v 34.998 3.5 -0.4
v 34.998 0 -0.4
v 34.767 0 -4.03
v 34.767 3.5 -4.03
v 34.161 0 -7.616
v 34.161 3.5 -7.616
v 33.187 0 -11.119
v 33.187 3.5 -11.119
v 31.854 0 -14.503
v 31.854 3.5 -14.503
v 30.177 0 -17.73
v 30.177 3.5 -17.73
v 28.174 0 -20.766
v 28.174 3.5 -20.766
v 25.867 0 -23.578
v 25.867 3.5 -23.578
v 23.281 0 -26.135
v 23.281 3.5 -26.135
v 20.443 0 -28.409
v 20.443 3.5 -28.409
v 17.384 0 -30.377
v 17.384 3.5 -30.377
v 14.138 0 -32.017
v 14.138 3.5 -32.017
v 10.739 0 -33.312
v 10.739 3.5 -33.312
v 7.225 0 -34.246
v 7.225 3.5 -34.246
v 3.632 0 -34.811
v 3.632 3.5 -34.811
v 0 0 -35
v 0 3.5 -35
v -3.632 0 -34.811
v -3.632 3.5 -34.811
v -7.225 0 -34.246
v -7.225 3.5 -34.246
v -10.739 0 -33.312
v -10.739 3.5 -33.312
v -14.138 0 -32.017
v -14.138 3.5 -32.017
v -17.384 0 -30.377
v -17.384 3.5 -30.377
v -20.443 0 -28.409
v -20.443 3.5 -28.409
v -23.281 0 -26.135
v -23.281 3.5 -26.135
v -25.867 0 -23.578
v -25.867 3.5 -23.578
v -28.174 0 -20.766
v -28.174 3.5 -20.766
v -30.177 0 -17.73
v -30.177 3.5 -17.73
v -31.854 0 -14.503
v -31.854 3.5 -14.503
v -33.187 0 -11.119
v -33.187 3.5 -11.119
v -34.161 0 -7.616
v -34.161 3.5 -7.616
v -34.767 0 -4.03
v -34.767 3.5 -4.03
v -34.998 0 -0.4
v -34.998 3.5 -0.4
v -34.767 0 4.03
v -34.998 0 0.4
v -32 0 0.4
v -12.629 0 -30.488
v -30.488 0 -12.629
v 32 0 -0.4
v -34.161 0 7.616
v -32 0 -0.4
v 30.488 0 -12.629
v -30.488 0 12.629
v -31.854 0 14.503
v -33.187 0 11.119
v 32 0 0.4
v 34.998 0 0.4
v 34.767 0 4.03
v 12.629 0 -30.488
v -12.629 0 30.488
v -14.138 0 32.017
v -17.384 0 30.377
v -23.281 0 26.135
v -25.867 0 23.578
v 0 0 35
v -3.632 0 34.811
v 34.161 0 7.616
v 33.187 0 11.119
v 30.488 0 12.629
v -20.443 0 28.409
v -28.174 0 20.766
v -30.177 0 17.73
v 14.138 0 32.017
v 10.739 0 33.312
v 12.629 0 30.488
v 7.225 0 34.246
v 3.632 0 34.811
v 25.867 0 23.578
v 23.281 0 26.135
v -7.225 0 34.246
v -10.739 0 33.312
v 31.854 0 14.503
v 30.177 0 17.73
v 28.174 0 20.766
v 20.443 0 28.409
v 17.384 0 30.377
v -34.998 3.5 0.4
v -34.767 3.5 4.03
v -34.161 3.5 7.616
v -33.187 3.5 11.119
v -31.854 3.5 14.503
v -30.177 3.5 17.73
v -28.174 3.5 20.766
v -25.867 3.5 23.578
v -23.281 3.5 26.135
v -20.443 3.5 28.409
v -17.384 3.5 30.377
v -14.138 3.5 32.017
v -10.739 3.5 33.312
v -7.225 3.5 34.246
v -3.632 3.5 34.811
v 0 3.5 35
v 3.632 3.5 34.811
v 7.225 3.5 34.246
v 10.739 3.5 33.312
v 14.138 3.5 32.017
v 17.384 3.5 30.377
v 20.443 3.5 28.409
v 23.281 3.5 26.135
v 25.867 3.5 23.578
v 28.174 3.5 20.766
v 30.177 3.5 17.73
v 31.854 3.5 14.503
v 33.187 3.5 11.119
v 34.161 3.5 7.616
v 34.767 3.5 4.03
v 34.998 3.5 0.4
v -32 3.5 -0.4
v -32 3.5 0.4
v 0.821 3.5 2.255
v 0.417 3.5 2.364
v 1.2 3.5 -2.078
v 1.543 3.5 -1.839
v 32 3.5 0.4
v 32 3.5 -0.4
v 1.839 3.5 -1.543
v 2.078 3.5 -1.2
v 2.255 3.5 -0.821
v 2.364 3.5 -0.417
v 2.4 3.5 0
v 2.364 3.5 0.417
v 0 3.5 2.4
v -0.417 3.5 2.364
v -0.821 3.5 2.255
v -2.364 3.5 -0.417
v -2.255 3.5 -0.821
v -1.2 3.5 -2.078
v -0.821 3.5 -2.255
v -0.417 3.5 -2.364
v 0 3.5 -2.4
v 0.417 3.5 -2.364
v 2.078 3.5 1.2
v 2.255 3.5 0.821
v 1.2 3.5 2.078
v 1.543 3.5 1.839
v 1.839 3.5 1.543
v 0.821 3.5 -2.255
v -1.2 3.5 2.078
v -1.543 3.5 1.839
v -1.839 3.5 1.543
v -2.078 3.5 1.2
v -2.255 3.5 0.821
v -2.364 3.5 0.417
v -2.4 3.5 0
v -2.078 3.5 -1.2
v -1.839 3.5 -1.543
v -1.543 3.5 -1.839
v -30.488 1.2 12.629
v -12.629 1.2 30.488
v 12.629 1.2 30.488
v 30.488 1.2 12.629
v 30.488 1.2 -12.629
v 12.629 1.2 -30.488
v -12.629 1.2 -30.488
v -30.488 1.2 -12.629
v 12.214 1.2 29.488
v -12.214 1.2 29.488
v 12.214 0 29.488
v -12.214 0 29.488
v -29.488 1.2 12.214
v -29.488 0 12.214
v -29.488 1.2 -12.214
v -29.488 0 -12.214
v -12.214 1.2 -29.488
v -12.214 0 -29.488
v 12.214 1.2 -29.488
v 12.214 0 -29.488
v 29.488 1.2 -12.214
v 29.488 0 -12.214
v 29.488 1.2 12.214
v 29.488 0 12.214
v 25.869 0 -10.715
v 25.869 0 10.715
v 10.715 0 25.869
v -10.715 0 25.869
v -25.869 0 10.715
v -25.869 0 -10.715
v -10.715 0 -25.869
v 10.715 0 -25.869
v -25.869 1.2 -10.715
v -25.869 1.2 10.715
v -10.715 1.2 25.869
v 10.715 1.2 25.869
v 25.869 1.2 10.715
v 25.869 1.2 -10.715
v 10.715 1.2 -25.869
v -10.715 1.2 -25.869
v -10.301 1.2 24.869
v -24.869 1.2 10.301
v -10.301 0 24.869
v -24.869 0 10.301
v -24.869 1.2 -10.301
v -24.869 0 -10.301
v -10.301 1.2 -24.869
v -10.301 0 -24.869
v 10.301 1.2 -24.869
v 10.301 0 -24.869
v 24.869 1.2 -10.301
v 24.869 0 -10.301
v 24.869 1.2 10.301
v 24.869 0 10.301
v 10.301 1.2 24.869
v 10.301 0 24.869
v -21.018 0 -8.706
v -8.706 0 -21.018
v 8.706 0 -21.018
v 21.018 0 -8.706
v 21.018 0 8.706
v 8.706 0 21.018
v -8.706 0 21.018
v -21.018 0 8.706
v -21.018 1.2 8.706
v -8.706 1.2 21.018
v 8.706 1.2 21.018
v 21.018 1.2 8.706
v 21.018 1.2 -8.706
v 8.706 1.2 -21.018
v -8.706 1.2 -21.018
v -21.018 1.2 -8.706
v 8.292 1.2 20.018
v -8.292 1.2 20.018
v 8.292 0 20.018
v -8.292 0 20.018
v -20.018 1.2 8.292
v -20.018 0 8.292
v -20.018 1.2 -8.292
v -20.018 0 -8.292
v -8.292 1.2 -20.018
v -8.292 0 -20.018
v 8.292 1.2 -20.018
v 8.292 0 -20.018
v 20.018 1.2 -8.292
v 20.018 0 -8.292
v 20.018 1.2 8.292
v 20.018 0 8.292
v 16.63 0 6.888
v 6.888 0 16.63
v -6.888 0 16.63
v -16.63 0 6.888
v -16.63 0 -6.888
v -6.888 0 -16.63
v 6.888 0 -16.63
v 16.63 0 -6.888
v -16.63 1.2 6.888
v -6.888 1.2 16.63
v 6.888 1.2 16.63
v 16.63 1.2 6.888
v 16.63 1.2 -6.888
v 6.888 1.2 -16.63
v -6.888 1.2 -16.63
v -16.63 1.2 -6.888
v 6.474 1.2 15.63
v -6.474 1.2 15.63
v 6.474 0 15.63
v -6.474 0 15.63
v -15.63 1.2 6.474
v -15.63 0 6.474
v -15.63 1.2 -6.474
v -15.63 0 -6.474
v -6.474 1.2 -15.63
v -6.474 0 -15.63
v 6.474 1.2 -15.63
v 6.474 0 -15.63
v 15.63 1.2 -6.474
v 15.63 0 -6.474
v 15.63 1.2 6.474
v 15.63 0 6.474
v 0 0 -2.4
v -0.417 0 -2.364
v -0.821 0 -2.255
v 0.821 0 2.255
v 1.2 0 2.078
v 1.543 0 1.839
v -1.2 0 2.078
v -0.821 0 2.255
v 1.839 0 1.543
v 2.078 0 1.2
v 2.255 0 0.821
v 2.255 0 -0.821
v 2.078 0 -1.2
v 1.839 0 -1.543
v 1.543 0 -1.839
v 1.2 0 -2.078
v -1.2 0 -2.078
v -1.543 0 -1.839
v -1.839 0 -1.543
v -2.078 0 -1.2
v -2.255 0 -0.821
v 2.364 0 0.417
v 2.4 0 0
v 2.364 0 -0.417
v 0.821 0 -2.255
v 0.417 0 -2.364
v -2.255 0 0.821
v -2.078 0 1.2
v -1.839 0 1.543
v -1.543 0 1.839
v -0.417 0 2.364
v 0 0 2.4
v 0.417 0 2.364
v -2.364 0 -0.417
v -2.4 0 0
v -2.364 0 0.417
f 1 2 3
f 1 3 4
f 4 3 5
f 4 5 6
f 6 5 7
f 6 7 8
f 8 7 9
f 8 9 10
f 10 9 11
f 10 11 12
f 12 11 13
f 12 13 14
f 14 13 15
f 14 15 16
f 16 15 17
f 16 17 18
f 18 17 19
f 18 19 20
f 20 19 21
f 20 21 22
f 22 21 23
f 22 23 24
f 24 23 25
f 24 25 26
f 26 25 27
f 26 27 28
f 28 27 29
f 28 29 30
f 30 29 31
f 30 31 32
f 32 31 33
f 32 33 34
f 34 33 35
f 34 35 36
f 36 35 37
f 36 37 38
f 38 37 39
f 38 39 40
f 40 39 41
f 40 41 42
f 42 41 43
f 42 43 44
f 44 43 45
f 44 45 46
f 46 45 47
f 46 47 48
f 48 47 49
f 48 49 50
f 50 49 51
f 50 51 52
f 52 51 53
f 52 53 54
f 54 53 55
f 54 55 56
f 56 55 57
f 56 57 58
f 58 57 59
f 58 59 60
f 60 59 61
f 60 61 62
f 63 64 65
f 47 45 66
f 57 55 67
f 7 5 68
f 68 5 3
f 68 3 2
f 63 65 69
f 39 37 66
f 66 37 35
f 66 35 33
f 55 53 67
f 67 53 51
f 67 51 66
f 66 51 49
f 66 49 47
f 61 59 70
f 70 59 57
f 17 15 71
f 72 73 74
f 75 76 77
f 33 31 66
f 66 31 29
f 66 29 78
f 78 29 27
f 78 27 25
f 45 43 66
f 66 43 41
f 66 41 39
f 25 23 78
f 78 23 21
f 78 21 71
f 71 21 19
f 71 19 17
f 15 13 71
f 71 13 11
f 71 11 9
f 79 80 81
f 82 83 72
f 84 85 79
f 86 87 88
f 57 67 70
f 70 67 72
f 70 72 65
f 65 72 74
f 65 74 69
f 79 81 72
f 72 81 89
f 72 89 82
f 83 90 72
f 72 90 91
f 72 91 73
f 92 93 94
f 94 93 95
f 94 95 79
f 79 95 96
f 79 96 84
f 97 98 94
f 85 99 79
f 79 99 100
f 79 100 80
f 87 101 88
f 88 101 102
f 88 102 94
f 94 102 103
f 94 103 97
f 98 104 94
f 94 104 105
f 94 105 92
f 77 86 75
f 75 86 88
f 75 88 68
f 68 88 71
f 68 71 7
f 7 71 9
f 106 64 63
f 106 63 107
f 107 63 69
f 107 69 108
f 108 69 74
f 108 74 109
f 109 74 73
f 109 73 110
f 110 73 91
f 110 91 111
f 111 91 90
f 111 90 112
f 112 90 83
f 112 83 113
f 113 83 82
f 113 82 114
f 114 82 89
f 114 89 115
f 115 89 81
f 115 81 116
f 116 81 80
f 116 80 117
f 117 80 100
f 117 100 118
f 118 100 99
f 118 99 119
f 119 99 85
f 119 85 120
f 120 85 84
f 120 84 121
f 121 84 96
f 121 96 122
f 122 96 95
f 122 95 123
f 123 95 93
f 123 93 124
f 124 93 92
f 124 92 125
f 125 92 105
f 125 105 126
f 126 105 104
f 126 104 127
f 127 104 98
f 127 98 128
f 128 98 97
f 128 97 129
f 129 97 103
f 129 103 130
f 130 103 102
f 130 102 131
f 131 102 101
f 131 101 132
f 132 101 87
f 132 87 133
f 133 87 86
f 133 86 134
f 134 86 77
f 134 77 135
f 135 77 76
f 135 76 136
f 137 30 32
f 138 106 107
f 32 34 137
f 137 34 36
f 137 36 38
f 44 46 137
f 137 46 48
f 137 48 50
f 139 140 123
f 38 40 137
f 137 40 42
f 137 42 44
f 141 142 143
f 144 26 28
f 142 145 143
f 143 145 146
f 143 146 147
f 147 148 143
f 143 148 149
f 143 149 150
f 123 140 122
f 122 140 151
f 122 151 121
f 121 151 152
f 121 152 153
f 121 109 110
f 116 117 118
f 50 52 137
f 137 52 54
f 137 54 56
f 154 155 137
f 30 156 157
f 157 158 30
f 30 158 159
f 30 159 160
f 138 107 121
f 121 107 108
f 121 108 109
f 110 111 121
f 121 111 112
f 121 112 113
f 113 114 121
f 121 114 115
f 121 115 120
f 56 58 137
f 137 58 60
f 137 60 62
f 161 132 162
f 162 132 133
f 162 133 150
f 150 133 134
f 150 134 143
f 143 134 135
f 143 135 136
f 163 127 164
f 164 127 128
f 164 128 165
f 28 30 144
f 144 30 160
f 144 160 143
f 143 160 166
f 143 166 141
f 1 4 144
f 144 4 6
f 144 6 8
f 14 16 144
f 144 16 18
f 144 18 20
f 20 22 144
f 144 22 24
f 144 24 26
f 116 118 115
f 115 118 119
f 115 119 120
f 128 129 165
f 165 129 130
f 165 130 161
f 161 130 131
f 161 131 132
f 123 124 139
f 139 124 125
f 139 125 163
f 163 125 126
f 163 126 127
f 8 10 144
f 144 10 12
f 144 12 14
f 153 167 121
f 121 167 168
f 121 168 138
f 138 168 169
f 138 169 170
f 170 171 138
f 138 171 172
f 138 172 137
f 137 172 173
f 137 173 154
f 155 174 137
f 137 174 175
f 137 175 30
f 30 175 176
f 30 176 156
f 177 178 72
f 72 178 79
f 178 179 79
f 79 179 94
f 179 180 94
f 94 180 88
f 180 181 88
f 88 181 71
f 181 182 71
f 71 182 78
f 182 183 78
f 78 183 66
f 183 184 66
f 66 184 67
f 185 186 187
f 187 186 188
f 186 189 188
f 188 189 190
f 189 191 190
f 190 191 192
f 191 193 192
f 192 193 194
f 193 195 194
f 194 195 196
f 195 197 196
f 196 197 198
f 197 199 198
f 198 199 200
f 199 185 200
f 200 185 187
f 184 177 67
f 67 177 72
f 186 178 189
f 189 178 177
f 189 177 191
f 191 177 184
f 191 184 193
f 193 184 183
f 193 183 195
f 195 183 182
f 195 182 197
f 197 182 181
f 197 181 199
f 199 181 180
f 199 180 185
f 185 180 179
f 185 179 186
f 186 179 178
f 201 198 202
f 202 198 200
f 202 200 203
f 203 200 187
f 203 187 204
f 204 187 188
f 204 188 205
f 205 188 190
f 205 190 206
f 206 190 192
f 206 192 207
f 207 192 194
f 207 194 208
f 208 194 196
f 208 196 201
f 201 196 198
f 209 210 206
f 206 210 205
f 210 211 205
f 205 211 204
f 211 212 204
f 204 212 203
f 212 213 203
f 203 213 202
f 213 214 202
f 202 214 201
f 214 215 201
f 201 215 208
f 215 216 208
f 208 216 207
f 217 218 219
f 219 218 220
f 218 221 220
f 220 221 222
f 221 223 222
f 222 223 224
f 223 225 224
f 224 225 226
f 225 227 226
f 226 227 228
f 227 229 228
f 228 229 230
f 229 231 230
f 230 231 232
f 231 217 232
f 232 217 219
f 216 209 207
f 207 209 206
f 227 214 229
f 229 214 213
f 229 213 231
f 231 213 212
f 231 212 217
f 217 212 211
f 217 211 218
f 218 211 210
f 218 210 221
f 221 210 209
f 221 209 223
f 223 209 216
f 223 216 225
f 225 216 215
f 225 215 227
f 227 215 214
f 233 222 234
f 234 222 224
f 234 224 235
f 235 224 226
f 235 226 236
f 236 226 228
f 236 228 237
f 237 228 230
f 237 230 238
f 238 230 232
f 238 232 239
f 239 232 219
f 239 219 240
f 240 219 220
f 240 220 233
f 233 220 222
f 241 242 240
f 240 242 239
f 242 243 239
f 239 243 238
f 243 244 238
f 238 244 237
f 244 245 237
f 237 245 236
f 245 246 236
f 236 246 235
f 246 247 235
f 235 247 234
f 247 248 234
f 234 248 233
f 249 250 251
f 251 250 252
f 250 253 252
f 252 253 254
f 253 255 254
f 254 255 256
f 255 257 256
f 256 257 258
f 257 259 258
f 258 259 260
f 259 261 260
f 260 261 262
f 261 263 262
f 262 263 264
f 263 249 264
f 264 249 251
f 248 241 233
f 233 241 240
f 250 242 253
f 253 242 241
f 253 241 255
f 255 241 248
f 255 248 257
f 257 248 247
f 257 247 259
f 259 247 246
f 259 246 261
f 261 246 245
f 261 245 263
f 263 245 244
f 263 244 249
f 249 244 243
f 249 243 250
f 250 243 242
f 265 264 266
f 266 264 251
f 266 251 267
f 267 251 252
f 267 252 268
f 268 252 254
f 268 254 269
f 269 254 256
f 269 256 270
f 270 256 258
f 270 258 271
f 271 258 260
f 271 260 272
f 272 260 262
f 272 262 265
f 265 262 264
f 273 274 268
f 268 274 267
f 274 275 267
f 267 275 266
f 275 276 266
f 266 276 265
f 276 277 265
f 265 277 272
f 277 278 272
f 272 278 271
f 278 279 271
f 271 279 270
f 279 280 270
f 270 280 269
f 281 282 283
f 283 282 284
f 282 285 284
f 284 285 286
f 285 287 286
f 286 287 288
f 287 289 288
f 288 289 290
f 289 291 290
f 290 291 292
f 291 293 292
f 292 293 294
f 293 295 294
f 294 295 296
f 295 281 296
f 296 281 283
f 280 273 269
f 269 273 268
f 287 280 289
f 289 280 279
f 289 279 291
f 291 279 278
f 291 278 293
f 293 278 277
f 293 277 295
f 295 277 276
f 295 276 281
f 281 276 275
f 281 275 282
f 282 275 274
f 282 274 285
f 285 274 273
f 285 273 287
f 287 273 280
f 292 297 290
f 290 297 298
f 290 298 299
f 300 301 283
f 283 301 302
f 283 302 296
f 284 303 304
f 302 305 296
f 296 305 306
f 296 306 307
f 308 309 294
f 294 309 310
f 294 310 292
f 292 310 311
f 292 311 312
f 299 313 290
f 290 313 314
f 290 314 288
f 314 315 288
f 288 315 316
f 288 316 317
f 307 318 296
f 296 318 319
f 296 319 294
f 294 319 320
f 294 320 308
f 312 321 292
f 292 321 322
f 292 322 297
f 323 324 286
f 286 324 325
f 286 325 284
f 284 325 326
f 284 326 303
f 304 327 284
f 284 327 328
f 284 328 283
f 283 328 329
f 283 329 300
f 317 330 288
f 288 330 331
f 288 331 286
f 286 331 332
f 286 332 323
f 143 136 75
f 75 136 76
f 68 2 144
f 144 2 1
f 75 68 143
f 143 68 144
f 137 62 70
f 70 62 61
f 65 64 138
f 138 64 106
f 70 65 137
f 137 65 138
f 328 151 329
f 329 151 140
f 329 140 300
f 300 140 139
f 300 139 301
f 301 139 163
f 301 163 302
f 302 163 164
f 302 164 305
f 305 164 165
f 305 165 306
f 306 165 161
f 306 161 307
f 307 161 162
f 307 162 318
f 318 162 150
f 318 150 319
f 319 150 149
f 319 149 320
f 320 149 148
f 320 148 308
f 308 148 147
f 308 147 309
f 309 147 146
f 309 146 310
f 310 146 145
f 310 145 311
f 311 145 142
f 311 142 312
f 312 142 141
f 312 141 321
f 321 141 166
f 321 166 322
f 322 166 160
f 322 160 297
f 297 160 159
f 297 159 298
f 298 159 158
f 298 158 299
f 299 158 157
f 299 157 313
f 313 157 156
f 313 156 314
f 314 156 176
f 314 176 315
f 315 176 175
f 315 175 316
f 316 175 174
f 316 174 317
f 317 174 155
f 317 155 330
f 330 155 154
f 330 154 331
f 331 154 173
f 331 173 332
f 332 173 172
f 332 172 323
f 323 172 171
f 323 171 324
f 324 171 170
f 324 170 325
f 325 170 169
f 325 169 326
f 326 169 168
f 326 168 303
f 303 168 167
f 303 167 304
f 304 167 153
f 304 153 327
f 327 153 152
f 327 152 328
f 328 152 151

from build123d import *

# Parameters (mm, degrees)
SKETCH_3_R          = 35
EXTRUDE_1_DEPTH     = 3.5
CUT_EXTRUDE_5_DEPTH = 1.2
SKETCH_4_W          = 5
SKETCH_4_H          = 0.8
CUT_EXTRUDE_6_DEPTH = 50.621064076
SKETCH_5_R          = 2.4
CUT_EXTRUDE_7_DEPTH = 50.619451831


with BuildPart() as part:
    # 스케치3 → 보스-돌출1 (new body)
    with BuildSketch(Plane(origin=(0, 0, 0), x_dir=(1, 0, 0), z_dir=(0, 1, 0))):
        Circle(SKETCH_3_R)
    extrude(amount=EXTRUDE_1_DEPTH)

    # 스케치1 → 컷-돌출5 (cut)
    # profile 1 of 4: a face of its own
    with BuildSketch(Plane(origin=(0, 0, 0), x_dir=(1, 0, 0), z_dir=(0, 1, 0))):
        Polygon((-12.628553268, -30.488024573), (12.628553268, -30.488024573), (30.488024573, -12.628553268), (30.488024573, 12.628553268), (12.628553268, 30.488024573), (-12.628553268, 30.488024573), (-30.488024573, 12.628553268), (-30.488024573, -12.628553268), align=None)
        Polygon((29.488024573, -12.214339706), (12.214339706, -29.488024573), (-12.214339706, -29.488024573), (-29.488024573, -12.214339706), (-29.488024573, 12.214339706), (-12.214339706, 29.488024573), (12.214339706, 29.488024573), (29.488024573, 12.214339706), align=None, mode=Mode.SUBTRACT)
    # profile 2 of 4: a face of its own
    with BuildSketch(Plane(origin=(0, 0, 0), x_dir=(1, 0, 0), z_dir=(0, 1, 0))):
        Polygon((-25.86862691, -10.715136106), (-10.715136106, -25.86862691), (10.715136106, -25.86862691), (25.86862691, -10.715136106), (25.86862691, 10.715136106), (10.715136106, 25.86862691), (-10.715136106, 25.86862691), (-25.86862691, 10.715136106), align=None)
        Polygon((10.300922544, -24.86862691), (-10.300922544, -24.86862691), (-24.86862691, -10.300922544), (-24.86862691, 10.300922544), (-10.300922544, 24.86862691), (10.300922544, 24.86862691), (24.86862691, 10.300922544), (24.86862691, -10.300922544), align=None, mode=Mode.SUBTRACT)
    # profile 3 of 4: a face of its own
    with BuildSketch(Plane(origin=(0, 0, 0), x_dir=(1, 0, 0), z_dir=(0, 1, 0))):
        Polygon((-8.706048086, -21.018259365), (8.706048086, -21.018259365), (21.018259365, -8.706048086), (21.018259365, 8.706048086), (8.706048086, 21.018259365), (-8.706048086, 21.018259365), (-21.018259365, 8.706048086), (-21.018259365, -8.706048086), align=None)
        Polygon((20.018259365, -8.291834524), (8.291834524, -20.018259365), (-8.291834524, -20.018259365), (-20.018259365, -8.291834524), (-20.018259365, 8.291834524), (-8.291834524, 20.018259365), (8.291834524, 20.018259365), (20.018259365, 8.291834524), align=None, mode=Mode.SUBTRACT)
    # profile 4 of 4: a face of its own
    with BuildSketch(Plane(origin=(0, 0, 0), x_dir=(1, 0, 0), z_dir=(0, 1, 0))):
        Polygon((-6.888301783, -16.629831585), (6.888301783, -16.629831585), (16.629831585, -6.888301783), (16.629831585, 6.888301783), (6.888301783, 16.629831585), (-6.888301783, 16.629831585), (-16.629831585, 6.888301783), (-16.629831585, -6.888301783), align=None)
        Polygon((15.629831585, -6.47408822), (6.47408822, -15.629831585), (-6.47408822, -15.629831585), (-15.629831585, -6.47408822), (-15.629831585, 6.47408822), (-6.47408822, 15.629831585), (6.47408822, 15.629831585), (15.629831585, 6.47408822), align=None, mode=Mode.SUBTRACT)
    extrude(amount=CUT_EXTRUDE_5_DEPTH, mode=Mode.SUBTRACT)

    # 스케치4 → 컷-돌출6 (cut, through all)
    with BuildSketch(Plane(origin=(0, 3.5, 0), x_dir=(1, 0, 0), z_dir=(0, 1, 0))):
        with Locations((-34.5, 0)):
            Rectangle(SKETCH_4_W, SKETCH_4_H)
        with Locations((34.5, 0)):
            Rectangle(SKETCH_4_W, SKETCH_4_H)
    extrude(amount=-CUT_EXTRUDE_6_DEPTH, mode=Mode.SUBTRACT)

    # 스케치5 → 컷-돌출7 (cut, through all)
    with BuildSketch(Plane(origin=(0, 3.5, 0), x_dir=(1, 0, 0), z_dir=(0, 1, 0))):
        Circle(SKETCH_5_R)
    extrude(amount=-CUT_EXTRUDE_7_DEPTH, mode=Mode.SUBTRACT)


solid = part.part
